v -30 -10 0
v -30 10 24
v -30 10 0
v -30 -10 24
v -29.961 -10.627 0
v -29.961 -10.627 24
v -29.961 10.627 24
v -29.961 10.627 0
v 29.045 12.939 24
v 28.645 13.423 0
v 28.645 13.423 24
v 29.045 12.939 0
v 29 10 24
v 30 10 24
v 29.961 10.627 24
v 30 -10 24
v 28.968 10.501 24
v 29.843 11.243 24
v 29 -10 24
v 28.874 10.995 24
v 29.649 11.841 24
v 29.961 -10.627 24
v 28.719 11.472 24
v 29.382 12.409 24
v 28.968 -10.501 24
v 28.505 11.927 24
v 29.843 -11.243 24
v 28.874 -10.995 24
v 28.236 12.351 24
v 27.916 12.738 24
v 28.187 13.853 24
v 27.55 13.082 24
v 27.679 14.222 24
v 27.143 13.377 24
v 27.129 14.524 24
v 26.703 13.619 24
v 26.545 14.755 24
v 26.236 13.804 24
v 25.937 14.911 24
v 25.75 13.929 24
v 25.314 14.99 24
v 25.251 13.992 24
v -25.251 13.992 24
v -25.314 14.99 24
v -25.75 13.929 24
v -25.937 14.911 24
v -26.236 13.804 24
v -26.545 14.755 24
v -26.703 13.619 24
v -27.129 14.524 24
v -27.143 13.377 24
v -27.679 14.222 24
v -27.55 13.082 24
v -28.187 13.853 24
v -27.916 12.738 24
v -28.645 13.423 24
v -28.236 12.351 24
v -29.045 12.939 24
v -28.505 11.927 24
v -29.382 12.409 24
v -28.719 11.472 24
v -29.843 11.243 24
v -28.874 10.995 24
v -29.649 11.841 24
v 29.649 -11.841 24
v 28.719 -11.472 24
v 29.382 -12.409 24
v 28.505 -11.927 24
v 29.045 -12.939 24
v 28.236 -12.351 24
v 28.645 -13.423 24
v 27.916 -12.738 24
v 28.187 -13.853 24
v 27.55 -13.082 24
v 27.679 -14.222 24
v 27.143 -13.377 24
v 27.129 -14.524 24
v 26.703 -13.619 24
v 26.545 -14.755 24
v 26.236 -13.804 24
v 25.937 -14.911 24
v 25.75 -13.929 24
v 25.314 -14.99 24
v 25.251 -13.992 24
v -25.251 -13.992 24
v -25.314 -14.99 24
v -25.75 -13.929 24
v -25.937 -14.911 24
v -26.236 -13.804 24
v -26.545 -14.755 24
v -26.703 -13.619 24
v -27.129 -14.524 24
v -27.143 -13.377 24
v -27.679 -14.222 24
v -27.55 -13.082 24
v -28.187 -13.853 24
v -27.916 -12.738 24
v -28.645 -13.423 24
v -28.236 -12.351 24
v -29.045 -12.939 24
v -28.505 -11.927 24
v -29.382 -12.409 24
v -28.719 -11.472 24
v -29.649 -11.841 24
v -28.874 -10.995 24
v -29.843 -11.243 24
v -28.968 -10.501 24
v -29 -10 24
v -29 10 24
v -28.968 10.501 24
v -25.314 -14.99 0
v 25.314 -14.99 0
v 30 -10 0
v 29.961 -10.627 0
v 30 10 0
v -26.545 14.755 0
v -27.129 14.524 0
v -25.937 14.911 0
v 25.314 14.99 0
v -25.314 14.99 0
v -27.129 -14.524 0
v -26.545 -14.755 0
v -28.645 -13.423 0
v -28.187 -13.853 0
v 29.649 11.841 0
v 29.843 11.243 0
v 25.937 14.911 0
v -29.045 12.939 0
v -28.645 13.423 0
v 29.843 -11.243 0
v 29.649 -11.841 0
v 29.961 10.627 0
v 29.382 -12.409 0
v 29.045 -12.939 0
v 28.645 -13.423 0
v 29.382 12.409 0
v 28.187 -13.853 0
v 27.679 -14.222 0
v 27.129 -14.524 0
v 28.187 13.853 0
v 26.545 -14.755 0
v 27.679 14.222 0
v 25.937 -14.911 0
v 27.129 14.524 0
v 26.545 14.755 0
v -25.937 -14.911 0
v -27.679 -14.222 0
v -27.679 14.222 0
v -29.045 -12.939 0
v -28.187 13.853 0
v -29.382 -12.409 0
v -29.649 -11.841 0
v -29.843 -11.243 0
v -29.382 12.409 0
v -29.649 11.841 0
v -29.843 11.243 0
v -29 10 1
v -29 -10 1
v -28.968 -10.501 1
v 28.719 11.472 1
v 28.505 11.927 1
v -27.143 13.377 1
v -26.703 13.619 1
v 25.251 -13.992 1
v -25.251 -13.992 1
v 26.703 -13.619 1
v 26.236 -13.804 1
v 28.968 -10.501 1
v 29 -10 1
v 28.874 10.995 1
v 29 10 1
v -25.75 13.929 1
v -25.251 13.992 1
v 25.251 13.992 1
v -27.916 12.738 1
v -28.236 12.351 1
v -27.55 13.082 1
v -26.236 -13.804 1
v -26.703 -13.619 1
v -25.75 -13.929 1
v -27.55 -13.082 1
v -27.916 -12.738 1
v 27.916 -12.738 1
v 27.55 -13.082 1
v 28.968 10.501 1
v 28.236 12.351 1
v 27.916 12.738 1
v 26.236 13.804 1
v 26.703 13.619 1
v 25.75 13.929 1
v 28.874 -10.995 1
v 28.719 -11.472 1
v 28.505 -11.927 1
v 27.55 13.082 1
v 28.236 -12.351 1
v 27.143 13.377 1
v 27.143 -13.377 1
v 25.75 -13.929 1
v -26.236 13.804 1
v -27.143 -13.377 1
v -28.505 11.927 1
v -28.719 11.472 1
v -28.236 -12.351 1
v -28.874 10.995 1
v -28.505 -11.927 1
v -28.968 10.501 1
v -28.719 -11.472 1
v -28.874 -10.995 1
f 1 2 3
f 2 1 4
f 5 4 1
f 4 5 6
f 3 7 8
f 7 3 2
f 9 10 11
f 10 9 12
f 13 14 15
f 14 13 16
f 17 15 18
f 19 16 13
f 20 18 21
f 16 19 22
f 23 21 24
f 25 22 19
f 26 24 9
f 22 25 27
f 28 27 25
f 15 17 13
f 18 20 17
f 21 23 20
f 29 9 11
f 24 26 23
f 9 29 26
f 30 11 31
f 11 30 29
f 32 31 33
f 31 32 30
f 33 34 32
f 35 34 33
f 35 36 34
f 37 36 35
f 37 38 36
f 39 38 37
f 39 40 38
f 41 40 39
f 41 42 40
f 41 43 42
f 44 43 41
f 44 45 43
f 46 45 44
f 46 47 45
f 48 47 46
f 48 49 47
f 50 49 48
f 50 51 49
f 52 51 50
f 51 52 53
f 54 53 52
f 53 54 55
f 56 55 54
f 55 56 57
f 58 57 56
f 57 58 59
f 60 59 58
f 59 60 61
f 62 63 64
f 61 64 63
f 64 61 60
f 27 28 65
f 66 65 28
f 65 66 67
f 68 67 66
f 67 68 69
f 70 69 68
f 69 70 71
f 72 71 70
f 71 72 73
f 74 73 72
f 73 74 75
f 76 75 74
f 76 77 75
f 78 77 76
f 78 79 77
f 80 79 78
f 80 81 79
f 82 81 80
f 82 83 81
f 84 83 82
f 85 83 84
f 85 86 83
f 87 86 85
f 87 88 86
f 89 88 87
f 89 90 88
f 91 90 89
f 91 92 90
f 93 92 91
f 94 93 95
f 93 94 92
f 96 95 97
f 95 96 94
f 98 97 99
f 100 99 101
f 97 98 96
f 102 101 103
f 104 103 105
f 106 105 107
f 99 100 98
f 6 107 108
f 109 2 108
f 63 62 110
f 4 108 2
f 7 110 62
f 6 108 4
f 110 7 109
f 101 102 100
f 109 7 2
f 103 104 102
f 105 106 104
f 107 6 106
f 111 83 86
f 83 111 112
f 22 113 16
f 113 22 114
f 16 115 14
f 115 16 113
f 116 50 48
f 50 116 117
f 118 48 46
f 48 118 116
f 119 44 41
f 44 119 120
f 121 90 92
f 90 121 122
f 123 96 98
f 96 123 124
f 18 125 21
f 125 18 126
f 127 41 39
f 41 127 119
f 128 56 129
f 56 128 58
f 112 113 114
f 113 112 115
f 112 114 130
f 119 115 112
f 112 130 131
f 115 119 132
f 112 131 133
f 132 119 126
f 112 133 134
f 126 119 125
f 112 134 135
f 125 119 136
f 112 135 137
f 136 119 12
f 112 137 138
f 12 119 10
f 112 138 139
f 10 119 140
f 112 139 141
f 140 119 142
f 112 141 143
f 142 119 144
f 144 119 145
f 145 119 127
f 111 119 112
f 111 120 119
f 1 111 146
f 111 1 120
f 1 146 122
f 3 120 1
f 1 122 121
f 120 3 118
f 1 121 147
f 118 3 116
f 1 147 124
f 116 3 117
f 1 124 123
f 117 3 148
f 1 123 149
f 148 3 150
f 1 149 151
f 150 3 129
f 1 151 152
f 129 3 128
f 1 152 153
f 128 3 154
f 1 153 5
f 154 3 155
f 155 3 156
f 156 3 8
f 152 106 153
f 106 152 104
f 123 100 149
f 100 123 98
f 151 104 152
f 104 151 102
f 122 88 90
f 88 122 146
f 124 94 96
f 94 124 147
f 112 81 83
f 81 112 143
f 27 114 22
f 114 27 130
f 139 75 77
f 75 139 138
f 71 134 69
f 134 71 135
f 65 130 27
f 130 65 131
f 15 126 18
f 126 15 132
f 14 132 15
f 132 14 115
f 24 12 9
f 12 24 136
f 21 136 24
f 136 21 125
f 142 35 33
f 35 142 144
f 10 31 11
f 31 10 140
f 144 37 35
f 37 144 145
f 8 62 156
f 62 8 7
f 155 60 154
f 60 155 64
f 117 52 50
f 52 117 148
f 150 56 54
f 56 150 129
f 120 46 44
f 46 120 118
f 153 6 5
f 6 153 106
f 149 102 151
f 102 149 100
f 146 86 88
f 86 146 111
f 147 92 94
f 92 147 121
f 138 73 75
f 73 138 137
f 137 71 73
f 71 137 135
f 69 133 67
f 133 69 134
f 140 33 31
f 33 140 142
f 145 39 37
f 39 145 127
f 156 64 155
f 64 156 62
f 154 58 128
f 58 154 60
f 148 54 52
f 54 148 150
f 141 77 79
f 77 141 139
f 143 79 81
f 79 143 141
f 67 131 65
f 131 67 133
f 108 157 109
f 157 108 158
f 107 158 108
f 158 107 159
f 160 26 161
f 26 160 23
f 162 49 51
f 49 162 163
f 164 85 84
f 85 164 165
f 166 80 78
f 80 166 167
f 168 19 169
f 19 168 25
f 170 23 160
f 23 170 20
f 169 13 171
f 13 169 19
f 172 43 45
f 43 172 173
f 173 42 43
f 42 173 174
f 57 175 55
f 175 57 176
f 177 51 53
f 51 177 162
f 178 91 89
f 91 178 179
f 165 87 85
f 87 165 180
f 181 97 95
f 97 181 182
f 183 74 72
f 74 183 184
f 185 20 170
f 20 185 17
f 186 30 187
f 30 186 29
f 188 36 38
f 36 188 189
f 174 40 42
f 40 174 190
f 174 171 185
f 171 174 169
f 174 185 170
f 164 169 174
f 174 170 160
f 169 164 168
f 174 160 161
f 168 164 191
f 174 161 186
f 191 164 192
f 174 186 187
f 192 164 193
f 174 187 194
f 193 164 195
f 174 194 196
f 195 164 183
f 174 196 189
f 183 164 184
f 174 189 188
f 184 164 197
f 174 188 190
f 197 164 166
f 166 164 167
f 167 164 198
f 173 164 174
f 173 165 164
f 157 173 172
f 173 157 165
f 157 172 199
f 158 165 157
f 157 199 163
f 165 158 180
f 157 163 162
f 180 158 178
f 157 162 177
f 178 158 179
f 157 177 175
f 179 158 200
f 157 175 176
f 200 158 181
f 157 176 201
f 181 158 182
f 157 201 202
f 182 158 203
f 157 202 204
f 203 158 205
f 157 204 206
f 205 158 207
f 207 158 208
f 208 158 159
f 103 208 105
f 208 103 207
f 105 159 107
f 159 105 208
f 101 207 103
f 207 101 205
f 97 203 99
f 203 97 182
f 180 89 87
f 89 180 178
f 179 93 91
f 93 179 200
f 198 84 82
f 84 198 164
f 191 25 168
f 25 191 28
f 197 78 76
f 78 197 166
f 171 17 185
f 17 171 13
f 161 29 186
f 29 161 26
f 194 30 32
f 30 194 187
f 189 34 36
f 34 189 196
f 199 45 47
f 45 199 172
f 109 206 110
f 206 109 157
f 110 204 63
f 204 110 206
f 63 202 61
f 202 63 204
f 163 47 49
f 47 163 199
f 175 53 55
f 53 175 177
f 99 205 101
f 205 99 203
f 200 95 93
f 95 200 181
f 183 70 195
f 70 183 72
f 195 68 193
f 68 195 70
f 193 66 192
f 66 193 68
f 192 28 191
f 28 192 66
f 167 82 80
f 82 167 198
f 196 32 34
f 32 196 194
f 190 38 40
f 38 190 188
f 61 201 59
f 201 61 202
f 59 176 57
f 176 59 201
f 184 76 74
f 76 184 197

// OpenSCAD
$fn = 50;


difference() {
	union() {
		hull() {
			translate(v = [-25.0000000000, 10.0000000000, 0]) {
				cylinder(h = 24, r = 5);
			}
			translate(v = [25.0000000000, 10.0000000000, 0]) {
				cylinder(h = 24, r = 5);
			}
			translate(v = [-25.0000000000, -10.0000000000, 0]) {
				cylinder(h = 24, r = 5);
			}
			translate(v = [25.0000000000, -10.0000000000, 0]) {
				cylinder(h = 24, r = 5);
			}
		}
	}
	union() {
		translate(v = [0, 0, 1]) {
			#hull() {
				translate(v = [-25.0000000000, 10.0000000000, 0]) {
					cylinder(h = 23, r = 4);
				}
				translate(v = [25.0000000000, 10.0000000000, 0]) {
					cylinder(h = 23, r = 4);
				}
				translate(v = [-25.0000000000, -10.0000000000, 0]) {
					cylinder(h = 23, r = 4);
				}
				translate(v = [25.0000000000, -10.0000000000, 0]) {
					cylinder(h = 23, r = 4);
				}
			}
		}
	}
}
